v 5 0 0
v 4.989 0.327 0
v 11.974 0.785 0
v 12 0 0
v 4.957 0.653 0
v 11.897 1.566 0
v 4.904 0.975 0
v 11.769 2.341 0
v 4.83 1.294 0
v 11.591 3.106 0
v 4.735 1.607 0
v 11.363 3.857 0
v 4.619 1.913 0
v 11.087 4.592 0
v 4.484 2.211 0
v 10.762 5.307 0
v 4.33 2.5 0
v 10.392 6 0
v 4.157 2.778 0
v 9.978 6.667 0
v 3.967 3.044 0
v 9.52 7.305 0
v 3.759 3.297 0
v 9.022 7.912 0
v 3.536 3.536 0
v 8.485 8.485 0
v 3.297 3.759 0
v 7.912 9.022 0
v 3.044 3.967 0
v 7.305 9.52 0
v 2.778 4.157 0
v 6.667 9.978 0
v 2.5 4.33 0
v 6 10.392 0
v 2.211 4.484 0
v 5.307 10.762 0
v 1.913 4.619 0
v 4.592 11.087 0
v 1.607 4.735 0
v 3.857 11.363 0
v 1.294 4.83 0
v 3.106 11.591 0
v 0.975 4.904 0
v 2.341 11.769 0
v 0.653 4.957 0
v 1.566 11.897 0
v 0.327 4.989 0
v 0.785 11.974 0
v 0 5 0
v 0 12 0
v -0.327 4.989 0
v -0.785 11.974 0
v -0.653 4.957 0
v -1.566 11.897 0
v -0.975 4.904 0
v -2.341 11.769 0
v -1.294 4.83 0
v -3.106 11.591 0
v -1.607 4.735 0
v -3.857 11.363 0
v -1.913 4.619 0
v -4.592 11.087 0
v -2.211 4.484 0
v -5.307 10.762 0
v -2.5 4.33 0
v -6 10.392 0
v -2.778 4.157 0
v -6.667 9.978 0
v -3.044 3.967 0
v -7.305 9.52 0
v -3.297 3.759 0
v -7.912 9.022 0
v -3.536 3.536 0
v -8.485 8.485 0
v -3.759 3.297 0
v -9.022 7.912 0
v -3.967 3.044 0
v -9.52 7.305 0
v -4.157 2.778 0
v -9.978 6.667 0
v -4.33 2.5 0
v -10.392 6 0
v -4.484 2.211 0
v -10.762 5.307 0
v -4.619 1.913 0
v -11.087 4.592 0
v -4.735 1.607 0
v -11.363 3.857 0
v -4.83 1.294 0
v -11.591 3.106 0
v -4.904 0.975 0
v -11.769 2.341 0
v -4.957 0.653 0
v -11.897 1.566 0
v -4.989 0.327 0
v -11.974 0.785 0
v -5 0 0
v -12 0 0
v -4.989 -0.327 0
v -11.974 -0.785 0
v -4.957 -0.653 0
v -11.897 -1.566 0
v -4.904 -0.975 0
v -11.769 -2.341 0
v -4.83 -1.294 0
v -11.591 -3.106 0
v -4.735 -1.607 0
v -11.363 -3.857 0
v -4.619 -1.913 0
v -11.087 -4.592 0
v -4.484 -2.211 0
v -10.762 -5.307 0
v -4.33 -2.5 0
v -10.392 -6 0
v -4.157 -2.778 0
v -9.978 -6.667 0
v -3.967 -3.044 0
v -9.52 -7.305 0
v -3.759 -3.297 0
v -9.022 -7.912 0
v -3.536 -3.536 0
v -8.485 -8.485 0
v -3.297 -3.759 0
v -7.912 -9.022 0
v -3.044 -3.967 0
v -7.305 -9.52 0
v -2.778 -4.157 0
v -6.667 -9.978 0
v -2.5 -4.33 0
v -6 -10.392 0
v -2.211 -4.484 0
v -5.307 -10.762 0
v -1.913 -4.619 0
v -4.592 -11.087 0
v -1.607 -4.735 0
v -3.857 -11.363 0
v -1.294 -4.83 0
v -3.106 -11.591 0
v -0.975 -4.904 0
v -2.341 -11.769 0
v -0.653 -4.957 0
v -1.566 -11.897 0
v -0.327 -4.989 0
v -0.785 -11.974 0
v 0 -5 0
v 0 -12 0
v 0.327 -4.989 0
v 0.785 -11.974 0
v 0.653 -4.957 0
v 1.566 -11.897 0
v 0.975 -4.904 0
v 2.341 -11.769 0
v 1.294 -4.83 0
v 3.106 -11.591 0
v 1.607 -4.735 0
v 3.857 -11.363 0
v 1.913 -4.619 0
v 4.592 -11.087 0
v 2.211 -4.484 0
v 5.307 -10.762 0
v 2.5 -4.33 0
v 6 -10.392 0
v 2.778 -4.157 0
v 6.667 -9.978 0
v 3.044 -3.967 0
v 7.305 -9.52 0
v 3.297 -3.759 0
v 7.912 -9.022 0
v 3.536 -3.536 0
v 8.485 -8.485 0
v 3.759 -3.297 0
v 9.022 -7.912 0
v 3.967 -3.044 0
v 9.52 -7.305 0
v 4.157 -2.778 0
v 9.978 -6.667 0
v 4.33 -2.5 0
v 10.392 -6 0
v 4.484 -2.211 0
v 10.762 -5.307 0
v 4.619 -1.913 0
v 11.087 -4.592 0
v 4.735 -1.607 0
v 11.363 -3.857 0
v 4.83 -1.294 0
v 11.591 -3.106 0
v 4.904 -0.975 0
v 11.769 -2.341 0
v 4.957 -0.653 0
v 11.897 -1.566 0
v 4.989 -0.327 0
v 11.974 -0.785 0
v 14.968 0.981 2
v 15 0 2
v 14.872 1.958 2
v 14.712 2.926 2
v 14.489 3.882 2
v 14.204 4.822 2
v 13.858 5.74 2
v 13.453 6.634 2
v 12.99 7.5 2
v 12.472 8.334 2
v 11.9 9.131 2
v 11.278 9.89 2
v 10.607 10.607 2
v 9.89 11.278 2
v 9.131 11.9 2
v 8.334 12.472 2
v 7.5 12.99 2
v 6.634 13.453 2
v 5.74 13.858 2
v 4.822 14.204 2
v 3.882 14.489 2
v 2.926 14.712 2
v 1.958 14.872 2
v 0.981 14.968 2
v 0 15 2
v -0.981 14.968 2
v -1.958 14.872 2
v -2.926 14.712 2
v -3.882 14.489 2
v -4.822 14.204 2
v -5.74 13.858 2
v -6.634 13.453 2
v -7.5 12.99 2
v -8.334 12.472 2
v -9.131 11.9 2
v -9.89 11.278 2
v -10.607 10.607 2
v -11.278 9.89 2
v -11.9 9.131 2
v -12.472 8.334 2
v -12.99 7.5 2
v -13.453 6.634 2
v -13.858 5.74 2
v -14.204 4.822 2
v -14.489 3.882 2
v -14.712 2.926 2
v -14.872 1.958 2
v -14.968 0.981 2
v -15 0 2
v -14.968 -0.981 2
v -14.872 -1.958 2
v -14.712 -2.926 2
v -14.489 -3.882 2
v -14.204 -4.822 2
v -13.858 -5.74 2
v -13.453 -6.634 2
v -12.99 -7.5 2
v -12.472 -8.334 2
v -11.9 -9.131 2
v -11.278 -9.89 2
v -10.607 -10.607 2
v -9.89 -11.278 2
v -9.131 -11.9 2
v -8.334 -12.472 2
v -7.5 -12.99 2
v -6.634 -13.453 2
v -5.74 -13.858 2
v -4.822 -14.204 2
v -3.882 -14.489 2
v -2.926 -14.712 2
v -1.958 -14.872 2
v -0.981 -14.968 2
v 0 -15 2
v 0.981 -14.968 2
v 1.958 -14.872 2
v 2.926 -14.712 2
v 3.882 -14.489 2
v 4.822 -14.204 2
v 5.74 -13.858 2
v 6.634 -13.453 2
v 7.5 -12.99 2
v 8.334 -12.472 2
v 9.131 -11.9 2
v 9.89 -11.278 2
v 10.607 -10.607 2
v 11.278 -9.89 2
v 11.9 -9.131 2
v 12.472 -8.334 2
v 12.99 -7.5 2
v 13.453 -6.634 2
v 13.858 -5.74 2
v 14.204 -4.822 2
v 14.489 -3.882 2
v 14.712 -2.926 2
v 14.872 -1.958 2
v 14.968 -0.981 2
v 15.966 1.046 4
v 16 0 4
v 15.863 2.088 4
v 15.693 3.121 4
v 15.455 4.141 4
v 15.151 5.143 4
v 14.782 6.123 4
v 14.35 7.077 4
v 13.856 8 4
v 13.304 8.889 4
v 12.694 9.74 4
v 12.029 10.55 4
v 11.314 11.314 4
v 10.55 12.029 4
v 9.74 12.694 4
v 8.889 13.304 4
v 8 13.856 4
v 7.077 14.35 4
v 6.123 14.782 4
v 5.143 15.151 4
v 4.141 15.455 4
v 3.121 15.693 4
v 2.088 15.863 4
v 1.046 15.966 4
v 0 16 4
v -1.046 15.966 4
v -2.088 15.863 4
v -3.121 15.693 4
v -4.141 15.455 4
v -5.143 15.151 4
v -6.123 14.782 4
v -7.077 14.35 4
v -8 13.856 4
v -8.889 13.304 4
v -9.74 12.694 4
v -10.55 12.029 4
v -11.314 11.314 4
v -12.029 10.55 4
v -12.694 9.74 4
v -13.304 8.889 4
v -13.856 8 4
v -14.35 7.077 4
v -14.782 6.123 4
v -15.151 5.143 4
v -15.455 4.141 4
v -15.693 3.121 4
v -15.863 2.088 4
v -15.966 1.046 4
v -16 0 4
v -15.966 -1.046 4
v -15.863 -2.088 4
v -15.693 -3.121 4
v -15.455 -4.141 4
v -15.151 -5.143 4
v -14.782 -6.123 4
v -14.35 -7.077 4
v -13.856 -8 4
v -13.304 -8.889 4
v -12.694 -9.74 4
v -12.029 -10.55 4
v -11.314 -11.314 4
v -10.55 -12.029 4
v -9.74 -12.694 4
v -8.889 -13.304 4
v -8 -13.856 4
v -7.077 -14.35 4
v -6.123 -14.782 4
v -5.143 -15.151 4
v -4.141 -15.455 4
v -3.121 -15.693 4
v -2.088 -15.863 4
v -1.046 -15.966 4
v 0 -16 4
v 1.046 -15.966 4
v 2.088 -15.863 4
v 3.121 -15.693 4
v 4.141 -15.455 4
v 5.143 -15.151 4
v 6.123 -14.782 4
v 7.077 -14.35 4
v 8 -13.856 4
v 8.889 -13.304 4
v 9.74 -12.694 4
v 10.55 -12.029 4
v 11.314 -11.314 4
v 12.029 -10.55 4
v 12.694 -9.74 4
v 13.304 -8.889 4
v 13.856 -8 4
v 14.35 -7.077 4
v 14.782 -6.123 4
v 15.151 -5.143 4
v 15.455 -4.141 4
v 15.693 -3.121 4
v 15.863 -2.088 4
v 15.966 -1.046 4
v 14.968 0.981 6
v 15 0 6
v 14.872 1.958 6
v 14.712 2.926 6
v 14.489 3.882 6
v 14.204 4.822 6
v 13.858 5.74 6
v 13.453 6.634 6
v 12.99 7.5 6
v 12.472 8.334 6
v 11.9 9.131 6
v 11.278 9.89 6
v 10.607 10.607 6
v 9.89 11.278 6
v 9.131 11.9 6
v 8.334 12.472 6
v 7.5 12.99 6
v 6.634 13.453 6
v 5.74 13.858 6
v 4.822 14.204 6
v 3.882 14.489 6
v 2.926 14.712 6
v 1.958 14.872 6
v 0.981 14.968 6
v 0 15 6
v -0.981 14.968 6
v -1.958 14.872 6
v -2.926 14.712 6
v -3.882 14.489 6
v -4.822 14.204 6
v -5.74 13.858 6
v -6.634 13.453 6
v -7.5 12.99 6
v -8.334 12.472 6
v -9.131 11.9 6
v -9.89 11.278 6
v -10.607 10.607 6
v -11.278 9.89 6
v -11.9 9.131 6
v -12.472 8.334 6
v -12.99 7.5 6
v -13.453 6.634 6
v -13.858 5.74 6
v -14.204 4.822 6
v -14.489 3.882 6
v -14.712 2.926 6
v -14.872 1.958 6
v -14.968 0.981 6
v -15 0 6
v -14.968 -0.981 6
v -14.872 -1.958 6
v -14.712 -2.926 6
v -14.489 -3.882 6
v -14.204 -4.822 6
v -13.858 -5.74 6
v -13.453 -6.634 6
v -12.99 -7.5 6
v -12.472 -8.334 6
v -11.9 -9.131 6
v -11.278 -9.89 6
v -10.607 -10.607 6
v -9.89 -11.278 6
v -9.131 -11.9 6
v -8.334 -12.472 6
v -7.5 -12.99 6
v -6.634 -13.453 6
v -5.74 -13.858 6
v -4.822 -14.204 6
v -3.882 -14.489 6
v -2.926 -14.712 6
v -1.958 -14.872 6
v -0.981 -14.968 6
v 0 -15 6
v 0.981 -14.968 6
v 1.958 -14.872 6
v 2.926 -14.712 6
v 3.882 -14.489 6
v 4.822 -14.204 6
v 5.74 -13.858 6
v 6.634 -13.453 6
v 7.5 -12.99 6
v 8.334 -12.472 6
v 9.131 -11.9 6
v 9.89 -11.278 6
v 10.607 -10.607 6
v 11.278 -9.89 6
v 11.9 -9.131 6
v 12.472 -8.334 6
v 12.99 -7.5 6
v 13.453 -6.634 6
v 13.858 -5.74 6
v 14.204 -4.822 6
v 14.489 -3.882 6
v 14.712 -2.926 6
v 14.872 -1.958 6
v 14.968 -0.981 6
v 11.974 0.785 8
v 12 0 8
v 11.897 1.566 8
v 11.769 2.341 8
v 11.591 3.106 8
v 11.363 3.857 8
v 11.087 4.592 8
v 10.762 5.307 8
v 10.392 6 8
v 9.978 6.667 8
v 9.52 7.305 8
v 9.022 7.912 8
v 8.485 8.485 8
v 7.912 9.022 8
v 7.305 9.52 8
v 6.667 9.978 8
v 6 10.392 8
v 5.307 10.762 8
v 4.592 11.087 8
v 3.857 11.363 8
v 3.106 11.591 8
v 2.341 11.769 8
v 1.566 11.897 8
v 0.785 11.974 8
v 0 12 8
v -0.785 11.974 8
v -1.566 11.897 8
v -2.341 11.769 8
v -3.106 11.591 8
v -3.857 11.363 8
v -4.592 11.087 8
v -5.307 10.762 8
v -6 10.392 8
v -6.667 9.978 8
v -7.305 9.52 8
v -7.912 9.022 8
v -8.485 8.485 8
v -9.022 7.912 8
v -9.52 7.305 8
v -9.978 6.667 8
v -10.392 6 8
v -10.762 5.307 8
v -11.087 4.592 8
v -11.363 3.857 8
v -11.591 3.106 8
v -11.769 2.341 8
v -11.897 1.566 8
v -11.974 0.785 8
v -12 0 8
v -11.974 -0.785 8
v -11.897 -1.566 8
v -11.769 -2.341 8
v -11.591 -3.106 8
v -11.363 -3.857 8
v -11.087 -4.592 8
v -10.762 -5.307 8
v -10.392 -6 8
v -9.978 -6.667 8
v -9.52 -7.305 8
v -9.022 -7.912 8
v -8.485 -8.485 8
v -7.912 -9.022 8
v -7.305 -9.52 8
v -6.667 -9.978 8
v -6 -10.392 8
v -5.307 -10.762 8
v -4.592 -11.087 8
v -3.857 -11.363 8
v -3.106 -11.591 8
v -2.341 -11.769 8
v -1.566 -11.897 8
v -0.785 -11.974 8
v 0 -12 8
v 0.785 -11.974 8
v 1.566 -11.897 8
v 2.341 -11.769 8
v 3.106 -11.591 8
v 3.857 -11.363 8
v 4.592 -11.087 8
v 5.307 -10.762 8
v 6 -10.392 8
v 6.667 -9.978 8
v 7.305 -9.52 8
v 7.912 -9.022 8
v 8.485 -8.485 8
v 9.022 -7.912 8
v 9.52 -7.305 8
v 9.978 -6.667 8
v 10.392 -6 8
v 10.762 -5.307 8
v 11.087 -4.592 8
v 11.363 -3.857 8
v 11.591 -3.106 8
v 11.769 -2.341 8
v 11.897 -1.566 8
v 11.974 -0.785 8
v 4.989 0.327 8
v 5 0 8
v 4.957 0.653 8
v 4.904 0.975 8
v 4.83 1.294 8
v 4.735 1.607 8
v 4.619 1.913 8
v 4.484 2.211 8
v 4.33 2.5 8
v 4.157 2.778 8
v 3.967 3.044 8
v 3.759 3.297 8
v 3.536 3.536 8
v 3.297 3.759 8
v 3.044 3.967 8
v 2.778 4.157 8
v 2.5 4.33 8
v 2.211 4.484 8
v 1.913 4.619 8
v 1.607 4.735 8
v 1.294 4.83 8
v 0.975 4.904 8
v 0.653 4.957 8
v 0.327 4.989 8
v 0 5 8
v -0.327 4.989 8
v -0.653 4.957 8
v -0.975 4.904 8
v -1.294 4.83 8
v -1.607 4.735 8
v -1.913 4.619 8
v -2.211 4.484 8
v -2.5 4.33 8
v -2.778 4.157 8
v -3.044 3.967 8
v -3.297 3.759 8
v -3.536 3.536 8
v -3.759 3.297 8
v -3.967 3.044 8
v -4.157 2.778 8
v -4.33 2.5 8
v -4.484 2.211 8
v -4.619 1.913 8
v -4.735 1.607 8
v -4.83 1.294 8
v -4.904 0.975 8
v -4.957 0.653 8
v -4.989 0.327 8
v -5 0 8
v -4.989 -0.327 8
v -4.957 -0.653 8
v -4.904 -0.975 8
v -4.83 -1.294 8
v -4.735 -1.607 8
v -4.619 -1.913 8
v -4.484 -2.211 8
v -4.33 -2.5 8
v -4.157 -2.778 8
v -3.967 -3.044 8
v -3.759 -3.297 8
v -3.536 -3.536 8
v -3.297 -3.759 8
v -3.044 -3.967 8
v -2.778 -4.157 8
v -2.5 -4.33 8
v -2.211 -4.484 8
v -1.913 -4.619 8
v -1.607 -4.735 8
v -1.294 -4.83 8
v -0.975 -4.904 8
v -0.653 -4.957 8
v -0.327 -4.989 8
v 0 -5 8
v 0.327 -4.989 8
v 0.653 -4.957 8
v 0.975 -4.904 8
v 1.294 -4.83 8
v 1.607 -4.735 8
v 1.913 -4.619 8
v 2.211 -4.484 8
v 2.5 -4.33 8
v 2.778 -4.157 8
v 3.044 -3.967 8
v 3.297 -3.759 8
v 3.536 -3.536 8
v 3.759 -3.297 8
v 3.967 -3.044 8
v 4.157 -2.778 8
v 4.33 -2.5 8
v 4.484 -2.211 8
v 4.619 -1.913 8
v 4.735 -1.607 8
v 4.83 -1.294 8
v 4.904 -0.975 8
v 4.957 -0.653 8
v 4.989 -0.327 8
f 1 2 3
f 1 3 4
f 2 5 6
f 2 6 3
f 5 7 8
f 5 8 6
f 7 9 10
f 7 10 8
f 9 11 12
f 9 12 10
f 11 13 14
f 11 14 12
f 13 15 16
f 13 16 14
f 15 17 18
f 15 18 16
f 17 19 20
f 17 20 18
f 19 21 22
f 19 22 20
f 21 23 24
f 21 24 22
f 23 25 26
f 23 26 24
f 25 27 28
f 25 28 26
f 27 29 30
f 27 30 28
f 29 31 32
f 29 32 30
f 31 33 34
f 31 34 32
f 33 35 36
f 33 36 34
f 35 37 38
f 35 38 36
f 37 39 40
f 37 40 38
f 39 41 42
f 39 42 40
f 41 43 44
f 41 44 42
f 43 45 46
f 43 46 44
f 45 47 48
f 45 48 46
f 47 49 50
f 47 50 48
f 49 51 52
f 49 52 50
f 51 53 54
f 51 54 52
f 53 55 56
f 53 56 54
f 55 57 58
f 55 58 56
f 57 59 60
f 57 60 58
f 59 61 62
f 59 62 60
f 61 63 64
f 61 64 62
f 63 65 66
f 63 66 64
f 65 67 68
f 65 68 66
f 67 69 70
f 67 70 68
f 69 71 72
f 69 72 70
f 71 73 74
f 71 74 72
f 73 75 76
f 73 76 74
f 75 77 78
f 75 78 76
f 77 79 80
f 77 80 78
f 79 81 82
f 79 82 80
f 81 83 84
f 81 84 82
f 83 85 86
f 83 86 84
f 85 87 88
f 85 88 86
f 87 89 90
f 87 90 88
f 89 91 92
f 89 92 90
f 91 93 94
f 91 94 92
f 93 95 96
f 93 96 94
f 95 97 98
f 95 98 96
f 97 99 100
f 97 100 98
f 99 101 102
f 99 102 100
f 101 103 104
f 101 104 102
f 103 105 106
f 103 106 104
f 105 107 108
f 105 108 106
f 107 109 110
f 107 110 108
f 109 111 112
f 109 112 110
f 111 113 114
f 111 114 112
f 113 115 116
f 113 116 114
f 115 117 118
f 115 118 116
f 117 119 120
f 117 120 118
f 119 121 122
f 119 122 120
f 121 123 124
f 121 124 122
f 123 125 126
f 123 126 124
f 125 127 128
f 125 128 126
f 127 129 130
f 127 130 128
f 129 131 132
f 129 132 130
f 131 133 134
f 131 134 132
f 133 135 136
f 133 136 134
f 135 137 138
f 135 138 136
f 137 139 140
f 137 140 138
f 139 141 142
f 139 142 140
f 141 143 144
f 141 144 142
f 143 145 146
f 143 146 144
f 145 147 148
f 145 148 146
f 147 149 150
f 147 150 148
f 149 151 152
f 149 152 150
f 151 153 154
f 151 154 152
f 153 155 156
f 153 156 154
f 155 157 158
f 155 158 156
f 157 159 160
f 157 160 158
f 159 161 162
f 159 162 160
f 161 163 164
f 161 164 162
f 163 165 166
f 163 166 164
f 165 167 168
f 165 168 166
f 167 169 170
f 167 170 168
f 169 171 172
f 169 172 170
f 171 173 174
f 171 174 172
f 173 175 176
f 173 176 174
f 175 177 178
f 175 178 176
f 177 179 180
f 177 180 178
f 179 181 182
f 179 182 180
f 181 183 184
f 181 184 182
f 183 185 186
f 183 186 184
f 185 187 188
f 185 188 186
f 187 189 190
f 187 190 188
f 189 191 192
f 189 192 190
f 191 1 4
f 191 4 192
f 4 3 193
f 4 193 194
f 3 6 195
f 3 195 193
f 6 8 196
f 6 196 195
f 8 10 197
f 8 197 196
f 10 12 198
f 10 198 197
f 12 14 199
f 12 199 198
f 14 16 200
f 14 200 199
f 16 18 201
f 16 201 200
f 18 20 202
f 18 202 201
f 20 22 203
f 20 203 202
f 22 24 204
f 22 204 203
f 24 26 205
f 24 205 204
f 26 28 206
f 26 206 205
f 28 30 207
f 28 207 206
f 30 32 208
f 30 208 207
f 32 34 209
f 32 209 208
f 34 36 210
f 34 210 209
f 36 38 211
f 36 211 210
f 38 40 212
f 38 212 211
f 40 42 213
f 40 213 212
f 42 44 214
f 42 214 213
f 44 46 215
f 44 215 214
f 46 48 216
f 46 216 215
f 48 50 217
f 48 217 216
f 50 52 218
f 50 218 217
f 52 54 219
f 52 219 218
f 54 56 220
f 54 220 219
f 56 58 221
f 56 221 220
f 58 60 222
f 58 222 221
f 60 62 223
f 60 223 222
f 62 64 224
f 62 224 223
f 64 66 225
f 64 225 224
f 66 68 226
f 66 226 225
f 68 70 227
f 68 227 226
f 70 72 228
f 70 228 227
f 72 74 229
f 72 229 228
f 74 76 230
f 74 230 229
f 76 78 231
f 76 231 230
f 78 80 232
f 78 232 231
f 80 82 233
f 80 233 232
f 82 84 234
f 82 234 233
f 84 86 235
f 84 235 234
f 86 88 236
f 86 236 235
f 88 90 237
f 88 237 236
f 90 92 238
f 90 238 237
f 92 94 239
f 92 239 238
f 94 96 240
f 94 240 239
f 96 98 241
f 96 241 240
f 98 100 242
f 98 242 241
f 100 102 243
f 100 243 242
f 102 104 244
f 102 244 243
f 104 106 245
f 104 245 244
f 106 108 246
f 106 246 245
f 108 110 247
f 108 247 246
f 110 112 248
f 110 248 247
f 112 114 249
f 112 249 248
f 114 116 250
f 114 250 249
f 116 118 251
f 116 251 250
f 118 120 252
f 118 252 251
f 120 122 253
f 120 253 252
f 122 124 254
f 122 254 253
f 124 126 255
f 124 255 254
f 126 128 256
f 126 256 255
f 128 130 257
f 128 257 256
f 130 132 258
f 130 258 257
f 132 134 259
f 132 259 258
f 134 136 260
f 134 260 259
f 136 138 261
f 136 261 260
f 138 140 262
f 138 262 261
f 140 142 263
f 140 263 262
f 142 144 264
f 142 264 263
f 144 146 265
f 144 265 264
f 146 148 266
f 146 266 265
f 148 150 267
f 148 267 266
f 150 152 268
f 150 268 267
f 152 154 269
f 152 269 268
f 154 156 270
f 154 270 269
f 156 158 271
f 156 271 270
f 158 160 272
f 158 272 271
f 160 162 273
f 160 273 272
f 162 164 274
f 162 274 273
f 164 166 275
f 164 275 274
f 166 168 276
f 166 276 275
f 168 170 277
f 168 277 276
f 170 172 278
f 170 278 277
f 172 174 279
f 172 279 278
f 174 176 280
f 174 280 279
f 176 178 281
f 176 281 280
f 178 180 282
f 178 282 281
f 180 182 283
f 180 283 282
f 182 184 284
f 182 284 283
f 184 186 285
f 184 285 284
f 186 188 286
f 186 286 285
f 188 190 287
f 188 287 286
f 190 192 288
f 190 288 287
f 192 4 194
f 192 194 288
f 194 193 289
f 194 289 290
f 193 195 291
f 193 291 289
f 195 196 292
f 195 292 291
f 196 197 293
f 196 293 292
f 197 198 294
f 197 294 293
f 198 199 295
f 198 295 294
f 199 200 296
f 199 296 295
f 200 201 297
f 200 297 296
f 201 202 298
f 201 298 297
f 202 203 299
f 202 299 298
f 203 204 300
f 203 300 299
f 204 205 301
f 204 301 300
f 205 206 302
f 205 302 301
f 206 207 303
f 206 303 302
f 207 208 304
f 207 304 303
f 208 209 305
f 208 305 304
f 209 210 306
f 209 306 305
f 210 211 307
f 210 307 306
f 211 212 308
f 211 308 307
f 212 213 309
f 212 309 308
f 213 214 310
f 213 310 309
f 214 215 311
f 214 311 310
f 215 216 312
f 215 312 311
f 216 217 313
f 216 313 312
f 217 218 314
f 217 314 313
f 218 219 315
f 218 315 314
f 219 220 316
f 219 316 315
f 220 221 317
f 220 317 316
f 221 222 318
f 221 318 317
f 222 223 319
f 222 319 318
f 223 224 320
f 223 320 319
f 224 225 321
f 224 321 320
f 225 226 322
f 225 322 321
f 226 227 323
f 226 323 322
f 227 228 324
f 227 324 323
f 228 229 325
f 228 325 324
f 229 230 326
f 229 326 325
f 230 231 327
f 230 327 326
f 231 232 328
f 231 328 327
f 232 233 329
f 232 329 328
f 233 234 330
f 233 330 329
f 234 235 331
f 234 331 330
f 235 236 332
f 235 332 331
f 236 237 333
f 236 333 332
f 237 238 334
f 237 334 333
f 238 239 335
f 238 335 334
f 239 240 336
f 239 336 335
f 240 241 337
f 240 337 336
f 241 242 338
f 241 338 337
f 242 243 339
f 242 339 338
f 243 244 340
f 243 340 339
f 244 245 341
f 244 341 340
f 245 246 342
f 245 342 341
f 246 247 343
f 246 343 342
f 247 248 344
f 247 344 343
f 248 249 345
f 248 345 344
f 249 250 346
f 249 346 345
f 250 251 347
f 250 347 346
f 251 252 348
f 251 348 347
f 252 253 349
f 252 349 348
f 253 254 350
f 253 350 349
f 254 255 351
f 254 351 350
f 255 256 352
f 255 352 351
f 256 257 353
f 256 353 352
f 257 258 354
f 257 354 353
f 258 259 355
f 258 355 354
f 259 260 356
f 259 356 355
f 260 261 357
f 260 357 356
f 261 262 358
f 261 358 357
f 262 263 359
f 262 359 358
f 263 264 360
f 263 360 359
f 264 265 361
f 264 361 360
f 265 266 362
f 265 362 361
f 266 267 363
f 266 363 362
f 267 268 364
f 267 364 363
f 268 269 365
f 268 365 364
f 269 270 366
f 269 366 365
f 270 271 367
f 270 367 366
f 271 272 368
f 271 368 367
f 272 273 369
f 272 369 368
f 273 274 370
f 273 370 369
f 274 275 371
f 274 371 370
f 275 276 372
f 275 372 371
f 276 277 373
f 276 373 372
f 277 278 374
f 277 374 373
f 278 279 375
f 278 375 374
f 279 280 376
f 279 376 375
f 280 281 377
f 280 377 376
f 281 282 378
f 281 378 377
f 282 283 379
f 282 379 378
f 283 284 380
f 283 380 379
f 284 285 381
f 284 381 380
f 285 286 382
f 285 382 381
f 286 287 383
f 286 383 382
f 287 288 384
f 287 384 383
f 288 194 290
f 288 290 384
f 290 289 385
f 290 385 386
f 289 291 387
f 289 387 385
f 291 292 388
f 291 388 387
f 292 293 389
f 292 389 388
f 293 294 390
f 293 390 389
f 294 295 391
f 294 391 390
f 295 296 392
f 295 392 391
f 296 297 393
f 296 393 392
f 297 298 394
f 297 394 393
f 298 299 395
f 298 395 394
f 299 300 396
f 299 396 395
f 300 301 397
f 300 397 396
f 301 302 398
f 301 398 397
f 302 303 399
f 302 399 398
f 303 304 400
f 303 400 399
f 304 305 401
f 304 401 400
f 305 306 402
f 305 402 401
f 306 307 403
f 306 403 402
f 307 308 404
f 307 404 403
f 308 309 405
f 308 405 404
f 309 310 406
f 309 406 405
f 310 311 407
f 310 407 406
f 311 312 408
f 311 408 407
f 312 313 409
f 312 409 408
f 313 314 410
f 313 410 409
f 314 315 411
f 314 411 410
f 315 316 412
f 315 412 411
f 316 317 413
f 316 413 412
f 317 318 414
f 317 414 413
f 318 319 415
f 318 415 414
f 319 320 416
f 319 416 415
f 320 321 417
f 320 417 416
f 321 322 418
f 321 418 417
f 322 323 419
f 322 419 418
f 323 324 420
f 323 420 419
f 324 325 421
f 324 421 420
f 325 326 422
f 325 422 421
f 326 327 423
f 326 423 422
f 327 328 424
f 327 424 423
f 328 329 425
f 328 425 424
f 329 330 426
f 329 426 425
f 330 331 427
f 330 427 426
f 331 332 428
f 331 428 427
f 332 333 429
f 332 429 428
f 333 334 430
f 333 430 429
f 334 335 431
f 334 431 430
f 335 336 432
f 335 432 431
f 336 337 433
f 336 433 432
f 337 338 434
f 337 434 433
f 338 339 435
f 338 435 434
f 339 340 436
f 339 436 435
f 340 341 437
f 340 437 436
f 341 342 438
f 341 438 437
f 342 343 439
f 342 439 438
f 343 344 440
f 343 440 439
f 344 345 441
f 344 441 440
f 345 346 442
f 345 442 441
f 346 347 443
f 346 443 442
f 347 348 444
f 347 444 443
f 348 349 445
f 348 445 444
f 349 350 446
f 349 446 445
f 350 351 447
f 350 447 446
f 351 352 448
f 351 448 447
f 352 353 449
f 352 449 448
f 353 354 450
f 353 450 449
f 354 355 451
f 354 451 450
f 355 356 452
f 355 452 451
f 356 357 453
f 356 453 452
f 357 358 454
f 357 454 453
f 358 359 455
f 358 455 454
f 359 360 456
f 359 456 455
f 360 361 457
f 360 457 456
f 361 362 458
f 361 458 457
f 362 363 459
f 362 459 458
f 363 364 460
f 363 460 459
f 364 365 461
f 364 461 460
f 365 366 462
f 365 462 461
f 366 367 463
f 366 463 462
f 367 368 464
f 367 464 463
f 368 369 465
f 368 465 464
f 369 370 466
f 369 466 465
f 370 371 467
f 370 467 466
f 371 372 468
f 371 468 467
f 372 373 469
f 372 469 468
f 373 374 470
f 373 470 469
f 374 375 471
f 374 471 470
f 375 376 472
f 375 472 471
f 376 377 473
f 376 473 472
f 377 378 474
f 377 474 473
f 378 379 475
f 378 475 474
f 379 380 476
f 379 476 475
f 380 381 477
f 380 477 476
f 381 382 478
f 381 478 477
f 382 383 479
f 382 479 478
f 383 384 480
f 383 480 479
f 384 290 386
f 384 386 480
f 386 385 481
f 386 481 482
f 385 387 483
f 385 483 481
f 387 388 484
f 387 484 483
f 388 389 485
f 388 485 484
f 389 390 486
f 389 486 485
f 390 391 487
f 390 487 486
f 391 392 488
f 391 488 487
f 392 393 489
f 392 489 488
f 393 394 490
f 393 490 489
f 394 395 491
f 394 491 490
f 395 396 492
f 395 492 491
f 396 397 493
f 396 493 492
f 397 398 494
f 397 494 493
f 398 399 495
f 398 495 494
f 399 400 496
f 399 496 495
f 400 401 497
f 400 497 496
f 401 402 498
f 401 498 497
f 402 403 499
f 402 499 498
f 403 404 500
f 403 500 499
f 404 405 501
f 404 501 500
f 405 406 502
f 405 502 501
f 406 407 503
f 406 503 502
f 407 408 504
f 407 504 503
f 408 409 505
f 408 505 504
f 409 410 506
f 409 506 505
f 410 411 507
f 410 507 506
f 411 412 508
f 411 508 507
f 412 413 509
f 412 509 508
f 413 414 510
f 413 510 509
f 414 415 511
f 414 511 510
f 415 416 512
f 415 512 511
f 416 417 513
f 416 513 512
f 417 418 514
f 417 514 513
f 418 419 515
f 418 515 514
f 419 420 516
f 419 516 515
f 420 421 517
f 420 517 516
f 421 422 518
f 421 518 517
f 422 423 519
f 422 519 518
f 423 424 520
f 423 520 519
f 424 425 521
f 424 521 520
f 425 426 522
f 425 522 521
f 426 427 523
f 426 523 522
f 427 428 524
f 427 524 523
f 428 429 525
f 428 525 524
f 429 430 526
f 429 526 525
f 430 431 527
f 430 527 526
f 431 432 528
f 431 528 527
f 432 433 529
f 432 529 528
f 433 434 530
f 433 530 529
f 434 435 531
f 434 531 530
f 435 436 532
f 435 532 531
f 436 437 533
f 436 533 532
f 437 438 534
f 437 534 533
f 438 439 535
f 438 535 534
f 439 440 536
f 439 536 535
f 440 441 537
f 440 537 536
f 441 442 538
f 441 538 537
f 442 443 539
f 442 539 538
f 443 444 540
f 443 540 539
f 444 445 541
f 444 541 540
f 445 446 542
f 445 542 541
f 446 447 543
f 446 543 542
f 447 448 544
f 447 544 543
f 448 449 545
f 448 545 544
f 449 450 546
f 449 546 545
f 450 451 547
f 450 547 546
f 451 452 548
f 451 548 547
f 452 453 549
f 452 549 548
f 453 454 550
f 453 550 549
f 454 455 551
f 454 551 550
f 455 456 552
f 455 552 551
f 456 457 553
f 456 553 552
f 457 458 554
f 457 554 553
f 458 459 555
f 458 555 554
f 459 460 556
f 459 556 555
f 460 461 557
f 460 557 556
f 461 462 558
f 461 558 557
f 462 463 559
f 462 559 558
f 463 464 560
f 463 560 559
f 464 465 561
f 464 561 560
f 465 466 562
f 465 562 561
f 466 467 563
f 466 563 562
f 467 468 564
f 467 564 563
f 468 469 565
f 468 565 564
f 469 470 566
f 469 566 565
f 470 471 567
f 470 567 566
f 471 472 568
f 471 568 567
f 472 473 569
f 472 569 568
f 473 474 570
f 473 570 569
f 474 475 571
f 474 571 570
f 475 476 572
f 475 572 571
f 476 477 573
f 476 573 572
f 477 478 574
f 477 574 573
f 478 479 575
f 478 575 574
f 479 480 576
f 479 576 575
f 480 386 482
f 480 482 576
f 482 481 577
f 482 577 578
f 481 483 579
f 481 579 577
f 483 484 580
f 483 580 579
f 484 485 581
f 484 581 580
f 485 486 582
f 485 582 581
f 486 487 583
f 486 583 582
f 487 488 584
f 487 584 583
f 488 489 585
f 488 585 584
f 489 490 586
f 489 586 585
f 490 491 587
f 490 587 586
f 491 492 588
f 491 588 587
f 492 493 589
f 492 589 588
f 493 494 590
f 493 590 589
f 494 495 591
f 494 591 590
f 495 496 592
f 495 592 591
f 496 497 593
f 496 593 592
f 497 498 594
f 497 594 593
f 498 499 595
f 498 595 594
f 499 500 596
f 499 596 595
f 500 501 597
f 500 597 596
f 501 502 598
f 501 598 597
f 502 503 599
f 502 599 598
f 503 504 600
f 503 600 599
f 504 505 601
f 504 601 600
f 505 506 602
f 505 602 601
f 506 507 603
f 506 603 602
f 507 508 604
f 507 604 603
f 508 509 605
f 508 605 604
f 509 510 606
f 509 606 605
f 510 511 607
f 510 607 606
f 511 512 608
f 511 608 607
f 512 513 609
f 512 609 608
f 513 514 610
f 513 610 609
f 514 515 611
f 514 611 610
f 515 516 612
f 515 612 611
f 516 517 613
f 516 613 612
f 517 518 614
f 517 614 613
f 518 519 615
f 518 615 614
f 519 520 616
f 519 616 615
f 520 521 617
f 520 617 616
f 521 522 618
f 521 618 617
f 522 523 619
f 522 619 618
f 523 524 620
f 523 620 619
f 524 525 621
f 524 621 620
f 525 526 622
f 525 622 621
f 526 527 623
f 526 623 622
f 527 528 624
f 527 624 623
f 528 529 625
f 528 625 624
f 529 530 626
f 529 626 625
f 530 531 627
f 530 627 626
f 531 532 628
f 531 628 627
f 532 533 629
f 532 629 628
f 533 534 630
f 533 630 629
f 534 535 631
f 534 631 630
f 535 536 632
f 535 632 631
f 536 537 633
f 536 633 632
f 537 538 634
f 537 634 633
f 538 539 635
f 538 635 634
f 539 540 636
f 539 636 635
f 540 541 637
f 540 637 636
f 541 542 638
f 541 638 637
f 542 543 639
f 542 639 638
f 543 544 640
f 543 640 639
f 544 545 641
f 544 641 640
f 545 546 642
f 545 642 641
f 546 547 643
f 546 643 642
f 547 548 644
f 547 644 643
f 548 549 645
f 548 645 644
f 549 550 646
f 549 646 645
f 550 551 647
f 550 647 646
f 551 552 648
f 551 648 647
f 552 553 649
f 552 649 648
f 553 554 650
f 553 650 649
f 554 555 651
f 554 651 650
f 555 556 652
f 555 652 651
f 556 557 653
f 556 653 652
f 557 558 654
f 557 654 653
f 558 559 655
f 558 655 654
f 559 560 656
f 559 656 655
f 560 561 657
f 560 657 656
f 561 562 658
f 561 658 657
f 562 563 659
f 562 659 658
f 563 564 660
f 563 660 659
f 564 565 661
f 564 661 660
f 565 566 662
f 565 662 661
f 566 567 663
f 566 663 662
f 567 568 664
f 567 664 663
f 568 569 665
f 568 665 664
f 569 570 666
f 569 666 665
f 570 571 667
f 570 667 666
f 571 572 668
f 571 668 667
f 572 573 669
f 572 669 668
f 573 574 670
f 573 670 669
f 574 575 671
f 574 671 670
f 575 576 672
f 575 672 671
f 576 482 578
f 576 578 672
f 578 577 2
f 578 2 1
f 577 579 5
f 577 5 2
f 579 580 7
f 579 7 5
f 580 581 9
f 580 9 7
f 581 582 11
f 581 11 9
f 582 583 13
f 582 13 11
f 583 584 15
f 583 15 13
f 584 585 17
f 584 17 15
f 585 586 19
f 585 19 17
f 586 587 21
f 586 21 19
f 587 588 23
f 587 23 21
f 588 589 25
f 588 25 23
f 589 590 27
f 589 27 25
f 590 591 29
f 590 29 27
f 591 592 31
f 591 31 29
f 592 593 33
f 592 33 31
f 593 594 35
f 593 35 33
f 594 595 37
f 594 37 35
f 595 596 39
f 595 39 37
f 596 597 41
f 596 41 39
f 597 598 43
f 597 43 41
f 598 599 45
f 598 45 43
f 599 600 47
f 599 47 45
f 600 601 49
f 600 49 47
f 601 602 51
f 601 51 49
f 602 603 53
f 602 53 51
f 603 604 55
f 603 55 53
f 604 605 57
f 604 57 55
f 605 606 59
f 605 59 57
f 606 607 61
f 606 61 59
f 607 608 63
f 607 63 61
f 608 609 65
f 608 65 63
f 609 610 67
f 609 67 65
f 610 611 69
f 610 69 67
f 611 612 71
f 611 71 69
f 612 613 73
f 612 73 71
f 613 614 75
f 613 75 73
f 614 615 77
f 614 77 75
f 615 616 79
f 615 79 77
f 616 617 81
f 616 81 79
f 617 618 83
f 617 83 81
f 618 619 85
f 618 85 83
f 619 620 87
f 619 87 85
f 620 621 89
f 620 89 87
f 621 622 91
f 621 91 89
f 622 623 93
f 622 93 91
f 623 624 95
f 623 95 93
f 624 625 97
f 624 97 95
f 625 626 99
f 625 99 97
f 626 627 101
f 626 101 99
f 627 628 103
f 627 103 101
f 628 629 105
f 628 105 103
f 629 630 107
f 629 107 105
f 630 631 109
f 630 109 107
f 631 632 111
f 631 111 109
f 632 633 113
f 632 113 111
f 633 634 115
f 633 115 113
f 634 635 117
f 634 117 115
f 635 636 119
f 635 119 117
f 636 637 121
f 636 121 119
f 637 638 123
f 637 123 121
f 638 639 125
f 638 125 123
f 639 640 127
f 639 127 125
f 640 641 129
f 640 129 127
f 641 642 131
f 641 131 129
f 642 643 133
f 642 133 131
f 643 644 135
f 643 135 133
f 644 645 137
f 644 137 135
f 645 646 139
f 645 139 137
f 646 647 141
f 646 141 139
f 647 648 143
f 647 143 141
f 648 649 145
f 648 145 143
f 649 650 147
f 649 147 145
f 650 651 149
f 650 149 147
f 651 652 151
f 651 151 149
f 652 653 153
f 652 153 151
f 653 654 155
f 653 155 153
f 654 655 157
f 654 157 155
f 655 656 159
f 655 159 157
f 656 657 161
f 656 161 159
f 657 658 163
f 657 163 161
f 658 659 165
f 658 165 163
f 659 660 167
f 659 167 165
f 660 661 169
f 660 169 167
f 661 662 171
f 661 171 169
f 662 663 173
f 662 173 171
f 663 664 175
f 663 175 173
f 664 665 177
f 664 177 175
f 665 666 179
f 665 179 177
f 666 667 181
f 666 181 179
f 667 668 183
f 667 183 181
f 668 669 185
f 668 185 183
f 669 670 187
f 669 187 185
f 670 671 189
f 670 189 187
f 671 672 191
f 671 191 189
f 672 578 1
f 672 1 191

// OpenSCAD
// Original MechIntel educational model. CC0-1.0. Units: mm.
// Not a standardized or load-rated component.
$fn=96;
// Section points: [radius, height], mm. Edit to change the profile.
section=[[5, 0], [12, 0], [15, 2], [16, 4], [15, 6], [12, 8], [5, 8]];
rotate_extrude($fn=96) polygon(points=section);
